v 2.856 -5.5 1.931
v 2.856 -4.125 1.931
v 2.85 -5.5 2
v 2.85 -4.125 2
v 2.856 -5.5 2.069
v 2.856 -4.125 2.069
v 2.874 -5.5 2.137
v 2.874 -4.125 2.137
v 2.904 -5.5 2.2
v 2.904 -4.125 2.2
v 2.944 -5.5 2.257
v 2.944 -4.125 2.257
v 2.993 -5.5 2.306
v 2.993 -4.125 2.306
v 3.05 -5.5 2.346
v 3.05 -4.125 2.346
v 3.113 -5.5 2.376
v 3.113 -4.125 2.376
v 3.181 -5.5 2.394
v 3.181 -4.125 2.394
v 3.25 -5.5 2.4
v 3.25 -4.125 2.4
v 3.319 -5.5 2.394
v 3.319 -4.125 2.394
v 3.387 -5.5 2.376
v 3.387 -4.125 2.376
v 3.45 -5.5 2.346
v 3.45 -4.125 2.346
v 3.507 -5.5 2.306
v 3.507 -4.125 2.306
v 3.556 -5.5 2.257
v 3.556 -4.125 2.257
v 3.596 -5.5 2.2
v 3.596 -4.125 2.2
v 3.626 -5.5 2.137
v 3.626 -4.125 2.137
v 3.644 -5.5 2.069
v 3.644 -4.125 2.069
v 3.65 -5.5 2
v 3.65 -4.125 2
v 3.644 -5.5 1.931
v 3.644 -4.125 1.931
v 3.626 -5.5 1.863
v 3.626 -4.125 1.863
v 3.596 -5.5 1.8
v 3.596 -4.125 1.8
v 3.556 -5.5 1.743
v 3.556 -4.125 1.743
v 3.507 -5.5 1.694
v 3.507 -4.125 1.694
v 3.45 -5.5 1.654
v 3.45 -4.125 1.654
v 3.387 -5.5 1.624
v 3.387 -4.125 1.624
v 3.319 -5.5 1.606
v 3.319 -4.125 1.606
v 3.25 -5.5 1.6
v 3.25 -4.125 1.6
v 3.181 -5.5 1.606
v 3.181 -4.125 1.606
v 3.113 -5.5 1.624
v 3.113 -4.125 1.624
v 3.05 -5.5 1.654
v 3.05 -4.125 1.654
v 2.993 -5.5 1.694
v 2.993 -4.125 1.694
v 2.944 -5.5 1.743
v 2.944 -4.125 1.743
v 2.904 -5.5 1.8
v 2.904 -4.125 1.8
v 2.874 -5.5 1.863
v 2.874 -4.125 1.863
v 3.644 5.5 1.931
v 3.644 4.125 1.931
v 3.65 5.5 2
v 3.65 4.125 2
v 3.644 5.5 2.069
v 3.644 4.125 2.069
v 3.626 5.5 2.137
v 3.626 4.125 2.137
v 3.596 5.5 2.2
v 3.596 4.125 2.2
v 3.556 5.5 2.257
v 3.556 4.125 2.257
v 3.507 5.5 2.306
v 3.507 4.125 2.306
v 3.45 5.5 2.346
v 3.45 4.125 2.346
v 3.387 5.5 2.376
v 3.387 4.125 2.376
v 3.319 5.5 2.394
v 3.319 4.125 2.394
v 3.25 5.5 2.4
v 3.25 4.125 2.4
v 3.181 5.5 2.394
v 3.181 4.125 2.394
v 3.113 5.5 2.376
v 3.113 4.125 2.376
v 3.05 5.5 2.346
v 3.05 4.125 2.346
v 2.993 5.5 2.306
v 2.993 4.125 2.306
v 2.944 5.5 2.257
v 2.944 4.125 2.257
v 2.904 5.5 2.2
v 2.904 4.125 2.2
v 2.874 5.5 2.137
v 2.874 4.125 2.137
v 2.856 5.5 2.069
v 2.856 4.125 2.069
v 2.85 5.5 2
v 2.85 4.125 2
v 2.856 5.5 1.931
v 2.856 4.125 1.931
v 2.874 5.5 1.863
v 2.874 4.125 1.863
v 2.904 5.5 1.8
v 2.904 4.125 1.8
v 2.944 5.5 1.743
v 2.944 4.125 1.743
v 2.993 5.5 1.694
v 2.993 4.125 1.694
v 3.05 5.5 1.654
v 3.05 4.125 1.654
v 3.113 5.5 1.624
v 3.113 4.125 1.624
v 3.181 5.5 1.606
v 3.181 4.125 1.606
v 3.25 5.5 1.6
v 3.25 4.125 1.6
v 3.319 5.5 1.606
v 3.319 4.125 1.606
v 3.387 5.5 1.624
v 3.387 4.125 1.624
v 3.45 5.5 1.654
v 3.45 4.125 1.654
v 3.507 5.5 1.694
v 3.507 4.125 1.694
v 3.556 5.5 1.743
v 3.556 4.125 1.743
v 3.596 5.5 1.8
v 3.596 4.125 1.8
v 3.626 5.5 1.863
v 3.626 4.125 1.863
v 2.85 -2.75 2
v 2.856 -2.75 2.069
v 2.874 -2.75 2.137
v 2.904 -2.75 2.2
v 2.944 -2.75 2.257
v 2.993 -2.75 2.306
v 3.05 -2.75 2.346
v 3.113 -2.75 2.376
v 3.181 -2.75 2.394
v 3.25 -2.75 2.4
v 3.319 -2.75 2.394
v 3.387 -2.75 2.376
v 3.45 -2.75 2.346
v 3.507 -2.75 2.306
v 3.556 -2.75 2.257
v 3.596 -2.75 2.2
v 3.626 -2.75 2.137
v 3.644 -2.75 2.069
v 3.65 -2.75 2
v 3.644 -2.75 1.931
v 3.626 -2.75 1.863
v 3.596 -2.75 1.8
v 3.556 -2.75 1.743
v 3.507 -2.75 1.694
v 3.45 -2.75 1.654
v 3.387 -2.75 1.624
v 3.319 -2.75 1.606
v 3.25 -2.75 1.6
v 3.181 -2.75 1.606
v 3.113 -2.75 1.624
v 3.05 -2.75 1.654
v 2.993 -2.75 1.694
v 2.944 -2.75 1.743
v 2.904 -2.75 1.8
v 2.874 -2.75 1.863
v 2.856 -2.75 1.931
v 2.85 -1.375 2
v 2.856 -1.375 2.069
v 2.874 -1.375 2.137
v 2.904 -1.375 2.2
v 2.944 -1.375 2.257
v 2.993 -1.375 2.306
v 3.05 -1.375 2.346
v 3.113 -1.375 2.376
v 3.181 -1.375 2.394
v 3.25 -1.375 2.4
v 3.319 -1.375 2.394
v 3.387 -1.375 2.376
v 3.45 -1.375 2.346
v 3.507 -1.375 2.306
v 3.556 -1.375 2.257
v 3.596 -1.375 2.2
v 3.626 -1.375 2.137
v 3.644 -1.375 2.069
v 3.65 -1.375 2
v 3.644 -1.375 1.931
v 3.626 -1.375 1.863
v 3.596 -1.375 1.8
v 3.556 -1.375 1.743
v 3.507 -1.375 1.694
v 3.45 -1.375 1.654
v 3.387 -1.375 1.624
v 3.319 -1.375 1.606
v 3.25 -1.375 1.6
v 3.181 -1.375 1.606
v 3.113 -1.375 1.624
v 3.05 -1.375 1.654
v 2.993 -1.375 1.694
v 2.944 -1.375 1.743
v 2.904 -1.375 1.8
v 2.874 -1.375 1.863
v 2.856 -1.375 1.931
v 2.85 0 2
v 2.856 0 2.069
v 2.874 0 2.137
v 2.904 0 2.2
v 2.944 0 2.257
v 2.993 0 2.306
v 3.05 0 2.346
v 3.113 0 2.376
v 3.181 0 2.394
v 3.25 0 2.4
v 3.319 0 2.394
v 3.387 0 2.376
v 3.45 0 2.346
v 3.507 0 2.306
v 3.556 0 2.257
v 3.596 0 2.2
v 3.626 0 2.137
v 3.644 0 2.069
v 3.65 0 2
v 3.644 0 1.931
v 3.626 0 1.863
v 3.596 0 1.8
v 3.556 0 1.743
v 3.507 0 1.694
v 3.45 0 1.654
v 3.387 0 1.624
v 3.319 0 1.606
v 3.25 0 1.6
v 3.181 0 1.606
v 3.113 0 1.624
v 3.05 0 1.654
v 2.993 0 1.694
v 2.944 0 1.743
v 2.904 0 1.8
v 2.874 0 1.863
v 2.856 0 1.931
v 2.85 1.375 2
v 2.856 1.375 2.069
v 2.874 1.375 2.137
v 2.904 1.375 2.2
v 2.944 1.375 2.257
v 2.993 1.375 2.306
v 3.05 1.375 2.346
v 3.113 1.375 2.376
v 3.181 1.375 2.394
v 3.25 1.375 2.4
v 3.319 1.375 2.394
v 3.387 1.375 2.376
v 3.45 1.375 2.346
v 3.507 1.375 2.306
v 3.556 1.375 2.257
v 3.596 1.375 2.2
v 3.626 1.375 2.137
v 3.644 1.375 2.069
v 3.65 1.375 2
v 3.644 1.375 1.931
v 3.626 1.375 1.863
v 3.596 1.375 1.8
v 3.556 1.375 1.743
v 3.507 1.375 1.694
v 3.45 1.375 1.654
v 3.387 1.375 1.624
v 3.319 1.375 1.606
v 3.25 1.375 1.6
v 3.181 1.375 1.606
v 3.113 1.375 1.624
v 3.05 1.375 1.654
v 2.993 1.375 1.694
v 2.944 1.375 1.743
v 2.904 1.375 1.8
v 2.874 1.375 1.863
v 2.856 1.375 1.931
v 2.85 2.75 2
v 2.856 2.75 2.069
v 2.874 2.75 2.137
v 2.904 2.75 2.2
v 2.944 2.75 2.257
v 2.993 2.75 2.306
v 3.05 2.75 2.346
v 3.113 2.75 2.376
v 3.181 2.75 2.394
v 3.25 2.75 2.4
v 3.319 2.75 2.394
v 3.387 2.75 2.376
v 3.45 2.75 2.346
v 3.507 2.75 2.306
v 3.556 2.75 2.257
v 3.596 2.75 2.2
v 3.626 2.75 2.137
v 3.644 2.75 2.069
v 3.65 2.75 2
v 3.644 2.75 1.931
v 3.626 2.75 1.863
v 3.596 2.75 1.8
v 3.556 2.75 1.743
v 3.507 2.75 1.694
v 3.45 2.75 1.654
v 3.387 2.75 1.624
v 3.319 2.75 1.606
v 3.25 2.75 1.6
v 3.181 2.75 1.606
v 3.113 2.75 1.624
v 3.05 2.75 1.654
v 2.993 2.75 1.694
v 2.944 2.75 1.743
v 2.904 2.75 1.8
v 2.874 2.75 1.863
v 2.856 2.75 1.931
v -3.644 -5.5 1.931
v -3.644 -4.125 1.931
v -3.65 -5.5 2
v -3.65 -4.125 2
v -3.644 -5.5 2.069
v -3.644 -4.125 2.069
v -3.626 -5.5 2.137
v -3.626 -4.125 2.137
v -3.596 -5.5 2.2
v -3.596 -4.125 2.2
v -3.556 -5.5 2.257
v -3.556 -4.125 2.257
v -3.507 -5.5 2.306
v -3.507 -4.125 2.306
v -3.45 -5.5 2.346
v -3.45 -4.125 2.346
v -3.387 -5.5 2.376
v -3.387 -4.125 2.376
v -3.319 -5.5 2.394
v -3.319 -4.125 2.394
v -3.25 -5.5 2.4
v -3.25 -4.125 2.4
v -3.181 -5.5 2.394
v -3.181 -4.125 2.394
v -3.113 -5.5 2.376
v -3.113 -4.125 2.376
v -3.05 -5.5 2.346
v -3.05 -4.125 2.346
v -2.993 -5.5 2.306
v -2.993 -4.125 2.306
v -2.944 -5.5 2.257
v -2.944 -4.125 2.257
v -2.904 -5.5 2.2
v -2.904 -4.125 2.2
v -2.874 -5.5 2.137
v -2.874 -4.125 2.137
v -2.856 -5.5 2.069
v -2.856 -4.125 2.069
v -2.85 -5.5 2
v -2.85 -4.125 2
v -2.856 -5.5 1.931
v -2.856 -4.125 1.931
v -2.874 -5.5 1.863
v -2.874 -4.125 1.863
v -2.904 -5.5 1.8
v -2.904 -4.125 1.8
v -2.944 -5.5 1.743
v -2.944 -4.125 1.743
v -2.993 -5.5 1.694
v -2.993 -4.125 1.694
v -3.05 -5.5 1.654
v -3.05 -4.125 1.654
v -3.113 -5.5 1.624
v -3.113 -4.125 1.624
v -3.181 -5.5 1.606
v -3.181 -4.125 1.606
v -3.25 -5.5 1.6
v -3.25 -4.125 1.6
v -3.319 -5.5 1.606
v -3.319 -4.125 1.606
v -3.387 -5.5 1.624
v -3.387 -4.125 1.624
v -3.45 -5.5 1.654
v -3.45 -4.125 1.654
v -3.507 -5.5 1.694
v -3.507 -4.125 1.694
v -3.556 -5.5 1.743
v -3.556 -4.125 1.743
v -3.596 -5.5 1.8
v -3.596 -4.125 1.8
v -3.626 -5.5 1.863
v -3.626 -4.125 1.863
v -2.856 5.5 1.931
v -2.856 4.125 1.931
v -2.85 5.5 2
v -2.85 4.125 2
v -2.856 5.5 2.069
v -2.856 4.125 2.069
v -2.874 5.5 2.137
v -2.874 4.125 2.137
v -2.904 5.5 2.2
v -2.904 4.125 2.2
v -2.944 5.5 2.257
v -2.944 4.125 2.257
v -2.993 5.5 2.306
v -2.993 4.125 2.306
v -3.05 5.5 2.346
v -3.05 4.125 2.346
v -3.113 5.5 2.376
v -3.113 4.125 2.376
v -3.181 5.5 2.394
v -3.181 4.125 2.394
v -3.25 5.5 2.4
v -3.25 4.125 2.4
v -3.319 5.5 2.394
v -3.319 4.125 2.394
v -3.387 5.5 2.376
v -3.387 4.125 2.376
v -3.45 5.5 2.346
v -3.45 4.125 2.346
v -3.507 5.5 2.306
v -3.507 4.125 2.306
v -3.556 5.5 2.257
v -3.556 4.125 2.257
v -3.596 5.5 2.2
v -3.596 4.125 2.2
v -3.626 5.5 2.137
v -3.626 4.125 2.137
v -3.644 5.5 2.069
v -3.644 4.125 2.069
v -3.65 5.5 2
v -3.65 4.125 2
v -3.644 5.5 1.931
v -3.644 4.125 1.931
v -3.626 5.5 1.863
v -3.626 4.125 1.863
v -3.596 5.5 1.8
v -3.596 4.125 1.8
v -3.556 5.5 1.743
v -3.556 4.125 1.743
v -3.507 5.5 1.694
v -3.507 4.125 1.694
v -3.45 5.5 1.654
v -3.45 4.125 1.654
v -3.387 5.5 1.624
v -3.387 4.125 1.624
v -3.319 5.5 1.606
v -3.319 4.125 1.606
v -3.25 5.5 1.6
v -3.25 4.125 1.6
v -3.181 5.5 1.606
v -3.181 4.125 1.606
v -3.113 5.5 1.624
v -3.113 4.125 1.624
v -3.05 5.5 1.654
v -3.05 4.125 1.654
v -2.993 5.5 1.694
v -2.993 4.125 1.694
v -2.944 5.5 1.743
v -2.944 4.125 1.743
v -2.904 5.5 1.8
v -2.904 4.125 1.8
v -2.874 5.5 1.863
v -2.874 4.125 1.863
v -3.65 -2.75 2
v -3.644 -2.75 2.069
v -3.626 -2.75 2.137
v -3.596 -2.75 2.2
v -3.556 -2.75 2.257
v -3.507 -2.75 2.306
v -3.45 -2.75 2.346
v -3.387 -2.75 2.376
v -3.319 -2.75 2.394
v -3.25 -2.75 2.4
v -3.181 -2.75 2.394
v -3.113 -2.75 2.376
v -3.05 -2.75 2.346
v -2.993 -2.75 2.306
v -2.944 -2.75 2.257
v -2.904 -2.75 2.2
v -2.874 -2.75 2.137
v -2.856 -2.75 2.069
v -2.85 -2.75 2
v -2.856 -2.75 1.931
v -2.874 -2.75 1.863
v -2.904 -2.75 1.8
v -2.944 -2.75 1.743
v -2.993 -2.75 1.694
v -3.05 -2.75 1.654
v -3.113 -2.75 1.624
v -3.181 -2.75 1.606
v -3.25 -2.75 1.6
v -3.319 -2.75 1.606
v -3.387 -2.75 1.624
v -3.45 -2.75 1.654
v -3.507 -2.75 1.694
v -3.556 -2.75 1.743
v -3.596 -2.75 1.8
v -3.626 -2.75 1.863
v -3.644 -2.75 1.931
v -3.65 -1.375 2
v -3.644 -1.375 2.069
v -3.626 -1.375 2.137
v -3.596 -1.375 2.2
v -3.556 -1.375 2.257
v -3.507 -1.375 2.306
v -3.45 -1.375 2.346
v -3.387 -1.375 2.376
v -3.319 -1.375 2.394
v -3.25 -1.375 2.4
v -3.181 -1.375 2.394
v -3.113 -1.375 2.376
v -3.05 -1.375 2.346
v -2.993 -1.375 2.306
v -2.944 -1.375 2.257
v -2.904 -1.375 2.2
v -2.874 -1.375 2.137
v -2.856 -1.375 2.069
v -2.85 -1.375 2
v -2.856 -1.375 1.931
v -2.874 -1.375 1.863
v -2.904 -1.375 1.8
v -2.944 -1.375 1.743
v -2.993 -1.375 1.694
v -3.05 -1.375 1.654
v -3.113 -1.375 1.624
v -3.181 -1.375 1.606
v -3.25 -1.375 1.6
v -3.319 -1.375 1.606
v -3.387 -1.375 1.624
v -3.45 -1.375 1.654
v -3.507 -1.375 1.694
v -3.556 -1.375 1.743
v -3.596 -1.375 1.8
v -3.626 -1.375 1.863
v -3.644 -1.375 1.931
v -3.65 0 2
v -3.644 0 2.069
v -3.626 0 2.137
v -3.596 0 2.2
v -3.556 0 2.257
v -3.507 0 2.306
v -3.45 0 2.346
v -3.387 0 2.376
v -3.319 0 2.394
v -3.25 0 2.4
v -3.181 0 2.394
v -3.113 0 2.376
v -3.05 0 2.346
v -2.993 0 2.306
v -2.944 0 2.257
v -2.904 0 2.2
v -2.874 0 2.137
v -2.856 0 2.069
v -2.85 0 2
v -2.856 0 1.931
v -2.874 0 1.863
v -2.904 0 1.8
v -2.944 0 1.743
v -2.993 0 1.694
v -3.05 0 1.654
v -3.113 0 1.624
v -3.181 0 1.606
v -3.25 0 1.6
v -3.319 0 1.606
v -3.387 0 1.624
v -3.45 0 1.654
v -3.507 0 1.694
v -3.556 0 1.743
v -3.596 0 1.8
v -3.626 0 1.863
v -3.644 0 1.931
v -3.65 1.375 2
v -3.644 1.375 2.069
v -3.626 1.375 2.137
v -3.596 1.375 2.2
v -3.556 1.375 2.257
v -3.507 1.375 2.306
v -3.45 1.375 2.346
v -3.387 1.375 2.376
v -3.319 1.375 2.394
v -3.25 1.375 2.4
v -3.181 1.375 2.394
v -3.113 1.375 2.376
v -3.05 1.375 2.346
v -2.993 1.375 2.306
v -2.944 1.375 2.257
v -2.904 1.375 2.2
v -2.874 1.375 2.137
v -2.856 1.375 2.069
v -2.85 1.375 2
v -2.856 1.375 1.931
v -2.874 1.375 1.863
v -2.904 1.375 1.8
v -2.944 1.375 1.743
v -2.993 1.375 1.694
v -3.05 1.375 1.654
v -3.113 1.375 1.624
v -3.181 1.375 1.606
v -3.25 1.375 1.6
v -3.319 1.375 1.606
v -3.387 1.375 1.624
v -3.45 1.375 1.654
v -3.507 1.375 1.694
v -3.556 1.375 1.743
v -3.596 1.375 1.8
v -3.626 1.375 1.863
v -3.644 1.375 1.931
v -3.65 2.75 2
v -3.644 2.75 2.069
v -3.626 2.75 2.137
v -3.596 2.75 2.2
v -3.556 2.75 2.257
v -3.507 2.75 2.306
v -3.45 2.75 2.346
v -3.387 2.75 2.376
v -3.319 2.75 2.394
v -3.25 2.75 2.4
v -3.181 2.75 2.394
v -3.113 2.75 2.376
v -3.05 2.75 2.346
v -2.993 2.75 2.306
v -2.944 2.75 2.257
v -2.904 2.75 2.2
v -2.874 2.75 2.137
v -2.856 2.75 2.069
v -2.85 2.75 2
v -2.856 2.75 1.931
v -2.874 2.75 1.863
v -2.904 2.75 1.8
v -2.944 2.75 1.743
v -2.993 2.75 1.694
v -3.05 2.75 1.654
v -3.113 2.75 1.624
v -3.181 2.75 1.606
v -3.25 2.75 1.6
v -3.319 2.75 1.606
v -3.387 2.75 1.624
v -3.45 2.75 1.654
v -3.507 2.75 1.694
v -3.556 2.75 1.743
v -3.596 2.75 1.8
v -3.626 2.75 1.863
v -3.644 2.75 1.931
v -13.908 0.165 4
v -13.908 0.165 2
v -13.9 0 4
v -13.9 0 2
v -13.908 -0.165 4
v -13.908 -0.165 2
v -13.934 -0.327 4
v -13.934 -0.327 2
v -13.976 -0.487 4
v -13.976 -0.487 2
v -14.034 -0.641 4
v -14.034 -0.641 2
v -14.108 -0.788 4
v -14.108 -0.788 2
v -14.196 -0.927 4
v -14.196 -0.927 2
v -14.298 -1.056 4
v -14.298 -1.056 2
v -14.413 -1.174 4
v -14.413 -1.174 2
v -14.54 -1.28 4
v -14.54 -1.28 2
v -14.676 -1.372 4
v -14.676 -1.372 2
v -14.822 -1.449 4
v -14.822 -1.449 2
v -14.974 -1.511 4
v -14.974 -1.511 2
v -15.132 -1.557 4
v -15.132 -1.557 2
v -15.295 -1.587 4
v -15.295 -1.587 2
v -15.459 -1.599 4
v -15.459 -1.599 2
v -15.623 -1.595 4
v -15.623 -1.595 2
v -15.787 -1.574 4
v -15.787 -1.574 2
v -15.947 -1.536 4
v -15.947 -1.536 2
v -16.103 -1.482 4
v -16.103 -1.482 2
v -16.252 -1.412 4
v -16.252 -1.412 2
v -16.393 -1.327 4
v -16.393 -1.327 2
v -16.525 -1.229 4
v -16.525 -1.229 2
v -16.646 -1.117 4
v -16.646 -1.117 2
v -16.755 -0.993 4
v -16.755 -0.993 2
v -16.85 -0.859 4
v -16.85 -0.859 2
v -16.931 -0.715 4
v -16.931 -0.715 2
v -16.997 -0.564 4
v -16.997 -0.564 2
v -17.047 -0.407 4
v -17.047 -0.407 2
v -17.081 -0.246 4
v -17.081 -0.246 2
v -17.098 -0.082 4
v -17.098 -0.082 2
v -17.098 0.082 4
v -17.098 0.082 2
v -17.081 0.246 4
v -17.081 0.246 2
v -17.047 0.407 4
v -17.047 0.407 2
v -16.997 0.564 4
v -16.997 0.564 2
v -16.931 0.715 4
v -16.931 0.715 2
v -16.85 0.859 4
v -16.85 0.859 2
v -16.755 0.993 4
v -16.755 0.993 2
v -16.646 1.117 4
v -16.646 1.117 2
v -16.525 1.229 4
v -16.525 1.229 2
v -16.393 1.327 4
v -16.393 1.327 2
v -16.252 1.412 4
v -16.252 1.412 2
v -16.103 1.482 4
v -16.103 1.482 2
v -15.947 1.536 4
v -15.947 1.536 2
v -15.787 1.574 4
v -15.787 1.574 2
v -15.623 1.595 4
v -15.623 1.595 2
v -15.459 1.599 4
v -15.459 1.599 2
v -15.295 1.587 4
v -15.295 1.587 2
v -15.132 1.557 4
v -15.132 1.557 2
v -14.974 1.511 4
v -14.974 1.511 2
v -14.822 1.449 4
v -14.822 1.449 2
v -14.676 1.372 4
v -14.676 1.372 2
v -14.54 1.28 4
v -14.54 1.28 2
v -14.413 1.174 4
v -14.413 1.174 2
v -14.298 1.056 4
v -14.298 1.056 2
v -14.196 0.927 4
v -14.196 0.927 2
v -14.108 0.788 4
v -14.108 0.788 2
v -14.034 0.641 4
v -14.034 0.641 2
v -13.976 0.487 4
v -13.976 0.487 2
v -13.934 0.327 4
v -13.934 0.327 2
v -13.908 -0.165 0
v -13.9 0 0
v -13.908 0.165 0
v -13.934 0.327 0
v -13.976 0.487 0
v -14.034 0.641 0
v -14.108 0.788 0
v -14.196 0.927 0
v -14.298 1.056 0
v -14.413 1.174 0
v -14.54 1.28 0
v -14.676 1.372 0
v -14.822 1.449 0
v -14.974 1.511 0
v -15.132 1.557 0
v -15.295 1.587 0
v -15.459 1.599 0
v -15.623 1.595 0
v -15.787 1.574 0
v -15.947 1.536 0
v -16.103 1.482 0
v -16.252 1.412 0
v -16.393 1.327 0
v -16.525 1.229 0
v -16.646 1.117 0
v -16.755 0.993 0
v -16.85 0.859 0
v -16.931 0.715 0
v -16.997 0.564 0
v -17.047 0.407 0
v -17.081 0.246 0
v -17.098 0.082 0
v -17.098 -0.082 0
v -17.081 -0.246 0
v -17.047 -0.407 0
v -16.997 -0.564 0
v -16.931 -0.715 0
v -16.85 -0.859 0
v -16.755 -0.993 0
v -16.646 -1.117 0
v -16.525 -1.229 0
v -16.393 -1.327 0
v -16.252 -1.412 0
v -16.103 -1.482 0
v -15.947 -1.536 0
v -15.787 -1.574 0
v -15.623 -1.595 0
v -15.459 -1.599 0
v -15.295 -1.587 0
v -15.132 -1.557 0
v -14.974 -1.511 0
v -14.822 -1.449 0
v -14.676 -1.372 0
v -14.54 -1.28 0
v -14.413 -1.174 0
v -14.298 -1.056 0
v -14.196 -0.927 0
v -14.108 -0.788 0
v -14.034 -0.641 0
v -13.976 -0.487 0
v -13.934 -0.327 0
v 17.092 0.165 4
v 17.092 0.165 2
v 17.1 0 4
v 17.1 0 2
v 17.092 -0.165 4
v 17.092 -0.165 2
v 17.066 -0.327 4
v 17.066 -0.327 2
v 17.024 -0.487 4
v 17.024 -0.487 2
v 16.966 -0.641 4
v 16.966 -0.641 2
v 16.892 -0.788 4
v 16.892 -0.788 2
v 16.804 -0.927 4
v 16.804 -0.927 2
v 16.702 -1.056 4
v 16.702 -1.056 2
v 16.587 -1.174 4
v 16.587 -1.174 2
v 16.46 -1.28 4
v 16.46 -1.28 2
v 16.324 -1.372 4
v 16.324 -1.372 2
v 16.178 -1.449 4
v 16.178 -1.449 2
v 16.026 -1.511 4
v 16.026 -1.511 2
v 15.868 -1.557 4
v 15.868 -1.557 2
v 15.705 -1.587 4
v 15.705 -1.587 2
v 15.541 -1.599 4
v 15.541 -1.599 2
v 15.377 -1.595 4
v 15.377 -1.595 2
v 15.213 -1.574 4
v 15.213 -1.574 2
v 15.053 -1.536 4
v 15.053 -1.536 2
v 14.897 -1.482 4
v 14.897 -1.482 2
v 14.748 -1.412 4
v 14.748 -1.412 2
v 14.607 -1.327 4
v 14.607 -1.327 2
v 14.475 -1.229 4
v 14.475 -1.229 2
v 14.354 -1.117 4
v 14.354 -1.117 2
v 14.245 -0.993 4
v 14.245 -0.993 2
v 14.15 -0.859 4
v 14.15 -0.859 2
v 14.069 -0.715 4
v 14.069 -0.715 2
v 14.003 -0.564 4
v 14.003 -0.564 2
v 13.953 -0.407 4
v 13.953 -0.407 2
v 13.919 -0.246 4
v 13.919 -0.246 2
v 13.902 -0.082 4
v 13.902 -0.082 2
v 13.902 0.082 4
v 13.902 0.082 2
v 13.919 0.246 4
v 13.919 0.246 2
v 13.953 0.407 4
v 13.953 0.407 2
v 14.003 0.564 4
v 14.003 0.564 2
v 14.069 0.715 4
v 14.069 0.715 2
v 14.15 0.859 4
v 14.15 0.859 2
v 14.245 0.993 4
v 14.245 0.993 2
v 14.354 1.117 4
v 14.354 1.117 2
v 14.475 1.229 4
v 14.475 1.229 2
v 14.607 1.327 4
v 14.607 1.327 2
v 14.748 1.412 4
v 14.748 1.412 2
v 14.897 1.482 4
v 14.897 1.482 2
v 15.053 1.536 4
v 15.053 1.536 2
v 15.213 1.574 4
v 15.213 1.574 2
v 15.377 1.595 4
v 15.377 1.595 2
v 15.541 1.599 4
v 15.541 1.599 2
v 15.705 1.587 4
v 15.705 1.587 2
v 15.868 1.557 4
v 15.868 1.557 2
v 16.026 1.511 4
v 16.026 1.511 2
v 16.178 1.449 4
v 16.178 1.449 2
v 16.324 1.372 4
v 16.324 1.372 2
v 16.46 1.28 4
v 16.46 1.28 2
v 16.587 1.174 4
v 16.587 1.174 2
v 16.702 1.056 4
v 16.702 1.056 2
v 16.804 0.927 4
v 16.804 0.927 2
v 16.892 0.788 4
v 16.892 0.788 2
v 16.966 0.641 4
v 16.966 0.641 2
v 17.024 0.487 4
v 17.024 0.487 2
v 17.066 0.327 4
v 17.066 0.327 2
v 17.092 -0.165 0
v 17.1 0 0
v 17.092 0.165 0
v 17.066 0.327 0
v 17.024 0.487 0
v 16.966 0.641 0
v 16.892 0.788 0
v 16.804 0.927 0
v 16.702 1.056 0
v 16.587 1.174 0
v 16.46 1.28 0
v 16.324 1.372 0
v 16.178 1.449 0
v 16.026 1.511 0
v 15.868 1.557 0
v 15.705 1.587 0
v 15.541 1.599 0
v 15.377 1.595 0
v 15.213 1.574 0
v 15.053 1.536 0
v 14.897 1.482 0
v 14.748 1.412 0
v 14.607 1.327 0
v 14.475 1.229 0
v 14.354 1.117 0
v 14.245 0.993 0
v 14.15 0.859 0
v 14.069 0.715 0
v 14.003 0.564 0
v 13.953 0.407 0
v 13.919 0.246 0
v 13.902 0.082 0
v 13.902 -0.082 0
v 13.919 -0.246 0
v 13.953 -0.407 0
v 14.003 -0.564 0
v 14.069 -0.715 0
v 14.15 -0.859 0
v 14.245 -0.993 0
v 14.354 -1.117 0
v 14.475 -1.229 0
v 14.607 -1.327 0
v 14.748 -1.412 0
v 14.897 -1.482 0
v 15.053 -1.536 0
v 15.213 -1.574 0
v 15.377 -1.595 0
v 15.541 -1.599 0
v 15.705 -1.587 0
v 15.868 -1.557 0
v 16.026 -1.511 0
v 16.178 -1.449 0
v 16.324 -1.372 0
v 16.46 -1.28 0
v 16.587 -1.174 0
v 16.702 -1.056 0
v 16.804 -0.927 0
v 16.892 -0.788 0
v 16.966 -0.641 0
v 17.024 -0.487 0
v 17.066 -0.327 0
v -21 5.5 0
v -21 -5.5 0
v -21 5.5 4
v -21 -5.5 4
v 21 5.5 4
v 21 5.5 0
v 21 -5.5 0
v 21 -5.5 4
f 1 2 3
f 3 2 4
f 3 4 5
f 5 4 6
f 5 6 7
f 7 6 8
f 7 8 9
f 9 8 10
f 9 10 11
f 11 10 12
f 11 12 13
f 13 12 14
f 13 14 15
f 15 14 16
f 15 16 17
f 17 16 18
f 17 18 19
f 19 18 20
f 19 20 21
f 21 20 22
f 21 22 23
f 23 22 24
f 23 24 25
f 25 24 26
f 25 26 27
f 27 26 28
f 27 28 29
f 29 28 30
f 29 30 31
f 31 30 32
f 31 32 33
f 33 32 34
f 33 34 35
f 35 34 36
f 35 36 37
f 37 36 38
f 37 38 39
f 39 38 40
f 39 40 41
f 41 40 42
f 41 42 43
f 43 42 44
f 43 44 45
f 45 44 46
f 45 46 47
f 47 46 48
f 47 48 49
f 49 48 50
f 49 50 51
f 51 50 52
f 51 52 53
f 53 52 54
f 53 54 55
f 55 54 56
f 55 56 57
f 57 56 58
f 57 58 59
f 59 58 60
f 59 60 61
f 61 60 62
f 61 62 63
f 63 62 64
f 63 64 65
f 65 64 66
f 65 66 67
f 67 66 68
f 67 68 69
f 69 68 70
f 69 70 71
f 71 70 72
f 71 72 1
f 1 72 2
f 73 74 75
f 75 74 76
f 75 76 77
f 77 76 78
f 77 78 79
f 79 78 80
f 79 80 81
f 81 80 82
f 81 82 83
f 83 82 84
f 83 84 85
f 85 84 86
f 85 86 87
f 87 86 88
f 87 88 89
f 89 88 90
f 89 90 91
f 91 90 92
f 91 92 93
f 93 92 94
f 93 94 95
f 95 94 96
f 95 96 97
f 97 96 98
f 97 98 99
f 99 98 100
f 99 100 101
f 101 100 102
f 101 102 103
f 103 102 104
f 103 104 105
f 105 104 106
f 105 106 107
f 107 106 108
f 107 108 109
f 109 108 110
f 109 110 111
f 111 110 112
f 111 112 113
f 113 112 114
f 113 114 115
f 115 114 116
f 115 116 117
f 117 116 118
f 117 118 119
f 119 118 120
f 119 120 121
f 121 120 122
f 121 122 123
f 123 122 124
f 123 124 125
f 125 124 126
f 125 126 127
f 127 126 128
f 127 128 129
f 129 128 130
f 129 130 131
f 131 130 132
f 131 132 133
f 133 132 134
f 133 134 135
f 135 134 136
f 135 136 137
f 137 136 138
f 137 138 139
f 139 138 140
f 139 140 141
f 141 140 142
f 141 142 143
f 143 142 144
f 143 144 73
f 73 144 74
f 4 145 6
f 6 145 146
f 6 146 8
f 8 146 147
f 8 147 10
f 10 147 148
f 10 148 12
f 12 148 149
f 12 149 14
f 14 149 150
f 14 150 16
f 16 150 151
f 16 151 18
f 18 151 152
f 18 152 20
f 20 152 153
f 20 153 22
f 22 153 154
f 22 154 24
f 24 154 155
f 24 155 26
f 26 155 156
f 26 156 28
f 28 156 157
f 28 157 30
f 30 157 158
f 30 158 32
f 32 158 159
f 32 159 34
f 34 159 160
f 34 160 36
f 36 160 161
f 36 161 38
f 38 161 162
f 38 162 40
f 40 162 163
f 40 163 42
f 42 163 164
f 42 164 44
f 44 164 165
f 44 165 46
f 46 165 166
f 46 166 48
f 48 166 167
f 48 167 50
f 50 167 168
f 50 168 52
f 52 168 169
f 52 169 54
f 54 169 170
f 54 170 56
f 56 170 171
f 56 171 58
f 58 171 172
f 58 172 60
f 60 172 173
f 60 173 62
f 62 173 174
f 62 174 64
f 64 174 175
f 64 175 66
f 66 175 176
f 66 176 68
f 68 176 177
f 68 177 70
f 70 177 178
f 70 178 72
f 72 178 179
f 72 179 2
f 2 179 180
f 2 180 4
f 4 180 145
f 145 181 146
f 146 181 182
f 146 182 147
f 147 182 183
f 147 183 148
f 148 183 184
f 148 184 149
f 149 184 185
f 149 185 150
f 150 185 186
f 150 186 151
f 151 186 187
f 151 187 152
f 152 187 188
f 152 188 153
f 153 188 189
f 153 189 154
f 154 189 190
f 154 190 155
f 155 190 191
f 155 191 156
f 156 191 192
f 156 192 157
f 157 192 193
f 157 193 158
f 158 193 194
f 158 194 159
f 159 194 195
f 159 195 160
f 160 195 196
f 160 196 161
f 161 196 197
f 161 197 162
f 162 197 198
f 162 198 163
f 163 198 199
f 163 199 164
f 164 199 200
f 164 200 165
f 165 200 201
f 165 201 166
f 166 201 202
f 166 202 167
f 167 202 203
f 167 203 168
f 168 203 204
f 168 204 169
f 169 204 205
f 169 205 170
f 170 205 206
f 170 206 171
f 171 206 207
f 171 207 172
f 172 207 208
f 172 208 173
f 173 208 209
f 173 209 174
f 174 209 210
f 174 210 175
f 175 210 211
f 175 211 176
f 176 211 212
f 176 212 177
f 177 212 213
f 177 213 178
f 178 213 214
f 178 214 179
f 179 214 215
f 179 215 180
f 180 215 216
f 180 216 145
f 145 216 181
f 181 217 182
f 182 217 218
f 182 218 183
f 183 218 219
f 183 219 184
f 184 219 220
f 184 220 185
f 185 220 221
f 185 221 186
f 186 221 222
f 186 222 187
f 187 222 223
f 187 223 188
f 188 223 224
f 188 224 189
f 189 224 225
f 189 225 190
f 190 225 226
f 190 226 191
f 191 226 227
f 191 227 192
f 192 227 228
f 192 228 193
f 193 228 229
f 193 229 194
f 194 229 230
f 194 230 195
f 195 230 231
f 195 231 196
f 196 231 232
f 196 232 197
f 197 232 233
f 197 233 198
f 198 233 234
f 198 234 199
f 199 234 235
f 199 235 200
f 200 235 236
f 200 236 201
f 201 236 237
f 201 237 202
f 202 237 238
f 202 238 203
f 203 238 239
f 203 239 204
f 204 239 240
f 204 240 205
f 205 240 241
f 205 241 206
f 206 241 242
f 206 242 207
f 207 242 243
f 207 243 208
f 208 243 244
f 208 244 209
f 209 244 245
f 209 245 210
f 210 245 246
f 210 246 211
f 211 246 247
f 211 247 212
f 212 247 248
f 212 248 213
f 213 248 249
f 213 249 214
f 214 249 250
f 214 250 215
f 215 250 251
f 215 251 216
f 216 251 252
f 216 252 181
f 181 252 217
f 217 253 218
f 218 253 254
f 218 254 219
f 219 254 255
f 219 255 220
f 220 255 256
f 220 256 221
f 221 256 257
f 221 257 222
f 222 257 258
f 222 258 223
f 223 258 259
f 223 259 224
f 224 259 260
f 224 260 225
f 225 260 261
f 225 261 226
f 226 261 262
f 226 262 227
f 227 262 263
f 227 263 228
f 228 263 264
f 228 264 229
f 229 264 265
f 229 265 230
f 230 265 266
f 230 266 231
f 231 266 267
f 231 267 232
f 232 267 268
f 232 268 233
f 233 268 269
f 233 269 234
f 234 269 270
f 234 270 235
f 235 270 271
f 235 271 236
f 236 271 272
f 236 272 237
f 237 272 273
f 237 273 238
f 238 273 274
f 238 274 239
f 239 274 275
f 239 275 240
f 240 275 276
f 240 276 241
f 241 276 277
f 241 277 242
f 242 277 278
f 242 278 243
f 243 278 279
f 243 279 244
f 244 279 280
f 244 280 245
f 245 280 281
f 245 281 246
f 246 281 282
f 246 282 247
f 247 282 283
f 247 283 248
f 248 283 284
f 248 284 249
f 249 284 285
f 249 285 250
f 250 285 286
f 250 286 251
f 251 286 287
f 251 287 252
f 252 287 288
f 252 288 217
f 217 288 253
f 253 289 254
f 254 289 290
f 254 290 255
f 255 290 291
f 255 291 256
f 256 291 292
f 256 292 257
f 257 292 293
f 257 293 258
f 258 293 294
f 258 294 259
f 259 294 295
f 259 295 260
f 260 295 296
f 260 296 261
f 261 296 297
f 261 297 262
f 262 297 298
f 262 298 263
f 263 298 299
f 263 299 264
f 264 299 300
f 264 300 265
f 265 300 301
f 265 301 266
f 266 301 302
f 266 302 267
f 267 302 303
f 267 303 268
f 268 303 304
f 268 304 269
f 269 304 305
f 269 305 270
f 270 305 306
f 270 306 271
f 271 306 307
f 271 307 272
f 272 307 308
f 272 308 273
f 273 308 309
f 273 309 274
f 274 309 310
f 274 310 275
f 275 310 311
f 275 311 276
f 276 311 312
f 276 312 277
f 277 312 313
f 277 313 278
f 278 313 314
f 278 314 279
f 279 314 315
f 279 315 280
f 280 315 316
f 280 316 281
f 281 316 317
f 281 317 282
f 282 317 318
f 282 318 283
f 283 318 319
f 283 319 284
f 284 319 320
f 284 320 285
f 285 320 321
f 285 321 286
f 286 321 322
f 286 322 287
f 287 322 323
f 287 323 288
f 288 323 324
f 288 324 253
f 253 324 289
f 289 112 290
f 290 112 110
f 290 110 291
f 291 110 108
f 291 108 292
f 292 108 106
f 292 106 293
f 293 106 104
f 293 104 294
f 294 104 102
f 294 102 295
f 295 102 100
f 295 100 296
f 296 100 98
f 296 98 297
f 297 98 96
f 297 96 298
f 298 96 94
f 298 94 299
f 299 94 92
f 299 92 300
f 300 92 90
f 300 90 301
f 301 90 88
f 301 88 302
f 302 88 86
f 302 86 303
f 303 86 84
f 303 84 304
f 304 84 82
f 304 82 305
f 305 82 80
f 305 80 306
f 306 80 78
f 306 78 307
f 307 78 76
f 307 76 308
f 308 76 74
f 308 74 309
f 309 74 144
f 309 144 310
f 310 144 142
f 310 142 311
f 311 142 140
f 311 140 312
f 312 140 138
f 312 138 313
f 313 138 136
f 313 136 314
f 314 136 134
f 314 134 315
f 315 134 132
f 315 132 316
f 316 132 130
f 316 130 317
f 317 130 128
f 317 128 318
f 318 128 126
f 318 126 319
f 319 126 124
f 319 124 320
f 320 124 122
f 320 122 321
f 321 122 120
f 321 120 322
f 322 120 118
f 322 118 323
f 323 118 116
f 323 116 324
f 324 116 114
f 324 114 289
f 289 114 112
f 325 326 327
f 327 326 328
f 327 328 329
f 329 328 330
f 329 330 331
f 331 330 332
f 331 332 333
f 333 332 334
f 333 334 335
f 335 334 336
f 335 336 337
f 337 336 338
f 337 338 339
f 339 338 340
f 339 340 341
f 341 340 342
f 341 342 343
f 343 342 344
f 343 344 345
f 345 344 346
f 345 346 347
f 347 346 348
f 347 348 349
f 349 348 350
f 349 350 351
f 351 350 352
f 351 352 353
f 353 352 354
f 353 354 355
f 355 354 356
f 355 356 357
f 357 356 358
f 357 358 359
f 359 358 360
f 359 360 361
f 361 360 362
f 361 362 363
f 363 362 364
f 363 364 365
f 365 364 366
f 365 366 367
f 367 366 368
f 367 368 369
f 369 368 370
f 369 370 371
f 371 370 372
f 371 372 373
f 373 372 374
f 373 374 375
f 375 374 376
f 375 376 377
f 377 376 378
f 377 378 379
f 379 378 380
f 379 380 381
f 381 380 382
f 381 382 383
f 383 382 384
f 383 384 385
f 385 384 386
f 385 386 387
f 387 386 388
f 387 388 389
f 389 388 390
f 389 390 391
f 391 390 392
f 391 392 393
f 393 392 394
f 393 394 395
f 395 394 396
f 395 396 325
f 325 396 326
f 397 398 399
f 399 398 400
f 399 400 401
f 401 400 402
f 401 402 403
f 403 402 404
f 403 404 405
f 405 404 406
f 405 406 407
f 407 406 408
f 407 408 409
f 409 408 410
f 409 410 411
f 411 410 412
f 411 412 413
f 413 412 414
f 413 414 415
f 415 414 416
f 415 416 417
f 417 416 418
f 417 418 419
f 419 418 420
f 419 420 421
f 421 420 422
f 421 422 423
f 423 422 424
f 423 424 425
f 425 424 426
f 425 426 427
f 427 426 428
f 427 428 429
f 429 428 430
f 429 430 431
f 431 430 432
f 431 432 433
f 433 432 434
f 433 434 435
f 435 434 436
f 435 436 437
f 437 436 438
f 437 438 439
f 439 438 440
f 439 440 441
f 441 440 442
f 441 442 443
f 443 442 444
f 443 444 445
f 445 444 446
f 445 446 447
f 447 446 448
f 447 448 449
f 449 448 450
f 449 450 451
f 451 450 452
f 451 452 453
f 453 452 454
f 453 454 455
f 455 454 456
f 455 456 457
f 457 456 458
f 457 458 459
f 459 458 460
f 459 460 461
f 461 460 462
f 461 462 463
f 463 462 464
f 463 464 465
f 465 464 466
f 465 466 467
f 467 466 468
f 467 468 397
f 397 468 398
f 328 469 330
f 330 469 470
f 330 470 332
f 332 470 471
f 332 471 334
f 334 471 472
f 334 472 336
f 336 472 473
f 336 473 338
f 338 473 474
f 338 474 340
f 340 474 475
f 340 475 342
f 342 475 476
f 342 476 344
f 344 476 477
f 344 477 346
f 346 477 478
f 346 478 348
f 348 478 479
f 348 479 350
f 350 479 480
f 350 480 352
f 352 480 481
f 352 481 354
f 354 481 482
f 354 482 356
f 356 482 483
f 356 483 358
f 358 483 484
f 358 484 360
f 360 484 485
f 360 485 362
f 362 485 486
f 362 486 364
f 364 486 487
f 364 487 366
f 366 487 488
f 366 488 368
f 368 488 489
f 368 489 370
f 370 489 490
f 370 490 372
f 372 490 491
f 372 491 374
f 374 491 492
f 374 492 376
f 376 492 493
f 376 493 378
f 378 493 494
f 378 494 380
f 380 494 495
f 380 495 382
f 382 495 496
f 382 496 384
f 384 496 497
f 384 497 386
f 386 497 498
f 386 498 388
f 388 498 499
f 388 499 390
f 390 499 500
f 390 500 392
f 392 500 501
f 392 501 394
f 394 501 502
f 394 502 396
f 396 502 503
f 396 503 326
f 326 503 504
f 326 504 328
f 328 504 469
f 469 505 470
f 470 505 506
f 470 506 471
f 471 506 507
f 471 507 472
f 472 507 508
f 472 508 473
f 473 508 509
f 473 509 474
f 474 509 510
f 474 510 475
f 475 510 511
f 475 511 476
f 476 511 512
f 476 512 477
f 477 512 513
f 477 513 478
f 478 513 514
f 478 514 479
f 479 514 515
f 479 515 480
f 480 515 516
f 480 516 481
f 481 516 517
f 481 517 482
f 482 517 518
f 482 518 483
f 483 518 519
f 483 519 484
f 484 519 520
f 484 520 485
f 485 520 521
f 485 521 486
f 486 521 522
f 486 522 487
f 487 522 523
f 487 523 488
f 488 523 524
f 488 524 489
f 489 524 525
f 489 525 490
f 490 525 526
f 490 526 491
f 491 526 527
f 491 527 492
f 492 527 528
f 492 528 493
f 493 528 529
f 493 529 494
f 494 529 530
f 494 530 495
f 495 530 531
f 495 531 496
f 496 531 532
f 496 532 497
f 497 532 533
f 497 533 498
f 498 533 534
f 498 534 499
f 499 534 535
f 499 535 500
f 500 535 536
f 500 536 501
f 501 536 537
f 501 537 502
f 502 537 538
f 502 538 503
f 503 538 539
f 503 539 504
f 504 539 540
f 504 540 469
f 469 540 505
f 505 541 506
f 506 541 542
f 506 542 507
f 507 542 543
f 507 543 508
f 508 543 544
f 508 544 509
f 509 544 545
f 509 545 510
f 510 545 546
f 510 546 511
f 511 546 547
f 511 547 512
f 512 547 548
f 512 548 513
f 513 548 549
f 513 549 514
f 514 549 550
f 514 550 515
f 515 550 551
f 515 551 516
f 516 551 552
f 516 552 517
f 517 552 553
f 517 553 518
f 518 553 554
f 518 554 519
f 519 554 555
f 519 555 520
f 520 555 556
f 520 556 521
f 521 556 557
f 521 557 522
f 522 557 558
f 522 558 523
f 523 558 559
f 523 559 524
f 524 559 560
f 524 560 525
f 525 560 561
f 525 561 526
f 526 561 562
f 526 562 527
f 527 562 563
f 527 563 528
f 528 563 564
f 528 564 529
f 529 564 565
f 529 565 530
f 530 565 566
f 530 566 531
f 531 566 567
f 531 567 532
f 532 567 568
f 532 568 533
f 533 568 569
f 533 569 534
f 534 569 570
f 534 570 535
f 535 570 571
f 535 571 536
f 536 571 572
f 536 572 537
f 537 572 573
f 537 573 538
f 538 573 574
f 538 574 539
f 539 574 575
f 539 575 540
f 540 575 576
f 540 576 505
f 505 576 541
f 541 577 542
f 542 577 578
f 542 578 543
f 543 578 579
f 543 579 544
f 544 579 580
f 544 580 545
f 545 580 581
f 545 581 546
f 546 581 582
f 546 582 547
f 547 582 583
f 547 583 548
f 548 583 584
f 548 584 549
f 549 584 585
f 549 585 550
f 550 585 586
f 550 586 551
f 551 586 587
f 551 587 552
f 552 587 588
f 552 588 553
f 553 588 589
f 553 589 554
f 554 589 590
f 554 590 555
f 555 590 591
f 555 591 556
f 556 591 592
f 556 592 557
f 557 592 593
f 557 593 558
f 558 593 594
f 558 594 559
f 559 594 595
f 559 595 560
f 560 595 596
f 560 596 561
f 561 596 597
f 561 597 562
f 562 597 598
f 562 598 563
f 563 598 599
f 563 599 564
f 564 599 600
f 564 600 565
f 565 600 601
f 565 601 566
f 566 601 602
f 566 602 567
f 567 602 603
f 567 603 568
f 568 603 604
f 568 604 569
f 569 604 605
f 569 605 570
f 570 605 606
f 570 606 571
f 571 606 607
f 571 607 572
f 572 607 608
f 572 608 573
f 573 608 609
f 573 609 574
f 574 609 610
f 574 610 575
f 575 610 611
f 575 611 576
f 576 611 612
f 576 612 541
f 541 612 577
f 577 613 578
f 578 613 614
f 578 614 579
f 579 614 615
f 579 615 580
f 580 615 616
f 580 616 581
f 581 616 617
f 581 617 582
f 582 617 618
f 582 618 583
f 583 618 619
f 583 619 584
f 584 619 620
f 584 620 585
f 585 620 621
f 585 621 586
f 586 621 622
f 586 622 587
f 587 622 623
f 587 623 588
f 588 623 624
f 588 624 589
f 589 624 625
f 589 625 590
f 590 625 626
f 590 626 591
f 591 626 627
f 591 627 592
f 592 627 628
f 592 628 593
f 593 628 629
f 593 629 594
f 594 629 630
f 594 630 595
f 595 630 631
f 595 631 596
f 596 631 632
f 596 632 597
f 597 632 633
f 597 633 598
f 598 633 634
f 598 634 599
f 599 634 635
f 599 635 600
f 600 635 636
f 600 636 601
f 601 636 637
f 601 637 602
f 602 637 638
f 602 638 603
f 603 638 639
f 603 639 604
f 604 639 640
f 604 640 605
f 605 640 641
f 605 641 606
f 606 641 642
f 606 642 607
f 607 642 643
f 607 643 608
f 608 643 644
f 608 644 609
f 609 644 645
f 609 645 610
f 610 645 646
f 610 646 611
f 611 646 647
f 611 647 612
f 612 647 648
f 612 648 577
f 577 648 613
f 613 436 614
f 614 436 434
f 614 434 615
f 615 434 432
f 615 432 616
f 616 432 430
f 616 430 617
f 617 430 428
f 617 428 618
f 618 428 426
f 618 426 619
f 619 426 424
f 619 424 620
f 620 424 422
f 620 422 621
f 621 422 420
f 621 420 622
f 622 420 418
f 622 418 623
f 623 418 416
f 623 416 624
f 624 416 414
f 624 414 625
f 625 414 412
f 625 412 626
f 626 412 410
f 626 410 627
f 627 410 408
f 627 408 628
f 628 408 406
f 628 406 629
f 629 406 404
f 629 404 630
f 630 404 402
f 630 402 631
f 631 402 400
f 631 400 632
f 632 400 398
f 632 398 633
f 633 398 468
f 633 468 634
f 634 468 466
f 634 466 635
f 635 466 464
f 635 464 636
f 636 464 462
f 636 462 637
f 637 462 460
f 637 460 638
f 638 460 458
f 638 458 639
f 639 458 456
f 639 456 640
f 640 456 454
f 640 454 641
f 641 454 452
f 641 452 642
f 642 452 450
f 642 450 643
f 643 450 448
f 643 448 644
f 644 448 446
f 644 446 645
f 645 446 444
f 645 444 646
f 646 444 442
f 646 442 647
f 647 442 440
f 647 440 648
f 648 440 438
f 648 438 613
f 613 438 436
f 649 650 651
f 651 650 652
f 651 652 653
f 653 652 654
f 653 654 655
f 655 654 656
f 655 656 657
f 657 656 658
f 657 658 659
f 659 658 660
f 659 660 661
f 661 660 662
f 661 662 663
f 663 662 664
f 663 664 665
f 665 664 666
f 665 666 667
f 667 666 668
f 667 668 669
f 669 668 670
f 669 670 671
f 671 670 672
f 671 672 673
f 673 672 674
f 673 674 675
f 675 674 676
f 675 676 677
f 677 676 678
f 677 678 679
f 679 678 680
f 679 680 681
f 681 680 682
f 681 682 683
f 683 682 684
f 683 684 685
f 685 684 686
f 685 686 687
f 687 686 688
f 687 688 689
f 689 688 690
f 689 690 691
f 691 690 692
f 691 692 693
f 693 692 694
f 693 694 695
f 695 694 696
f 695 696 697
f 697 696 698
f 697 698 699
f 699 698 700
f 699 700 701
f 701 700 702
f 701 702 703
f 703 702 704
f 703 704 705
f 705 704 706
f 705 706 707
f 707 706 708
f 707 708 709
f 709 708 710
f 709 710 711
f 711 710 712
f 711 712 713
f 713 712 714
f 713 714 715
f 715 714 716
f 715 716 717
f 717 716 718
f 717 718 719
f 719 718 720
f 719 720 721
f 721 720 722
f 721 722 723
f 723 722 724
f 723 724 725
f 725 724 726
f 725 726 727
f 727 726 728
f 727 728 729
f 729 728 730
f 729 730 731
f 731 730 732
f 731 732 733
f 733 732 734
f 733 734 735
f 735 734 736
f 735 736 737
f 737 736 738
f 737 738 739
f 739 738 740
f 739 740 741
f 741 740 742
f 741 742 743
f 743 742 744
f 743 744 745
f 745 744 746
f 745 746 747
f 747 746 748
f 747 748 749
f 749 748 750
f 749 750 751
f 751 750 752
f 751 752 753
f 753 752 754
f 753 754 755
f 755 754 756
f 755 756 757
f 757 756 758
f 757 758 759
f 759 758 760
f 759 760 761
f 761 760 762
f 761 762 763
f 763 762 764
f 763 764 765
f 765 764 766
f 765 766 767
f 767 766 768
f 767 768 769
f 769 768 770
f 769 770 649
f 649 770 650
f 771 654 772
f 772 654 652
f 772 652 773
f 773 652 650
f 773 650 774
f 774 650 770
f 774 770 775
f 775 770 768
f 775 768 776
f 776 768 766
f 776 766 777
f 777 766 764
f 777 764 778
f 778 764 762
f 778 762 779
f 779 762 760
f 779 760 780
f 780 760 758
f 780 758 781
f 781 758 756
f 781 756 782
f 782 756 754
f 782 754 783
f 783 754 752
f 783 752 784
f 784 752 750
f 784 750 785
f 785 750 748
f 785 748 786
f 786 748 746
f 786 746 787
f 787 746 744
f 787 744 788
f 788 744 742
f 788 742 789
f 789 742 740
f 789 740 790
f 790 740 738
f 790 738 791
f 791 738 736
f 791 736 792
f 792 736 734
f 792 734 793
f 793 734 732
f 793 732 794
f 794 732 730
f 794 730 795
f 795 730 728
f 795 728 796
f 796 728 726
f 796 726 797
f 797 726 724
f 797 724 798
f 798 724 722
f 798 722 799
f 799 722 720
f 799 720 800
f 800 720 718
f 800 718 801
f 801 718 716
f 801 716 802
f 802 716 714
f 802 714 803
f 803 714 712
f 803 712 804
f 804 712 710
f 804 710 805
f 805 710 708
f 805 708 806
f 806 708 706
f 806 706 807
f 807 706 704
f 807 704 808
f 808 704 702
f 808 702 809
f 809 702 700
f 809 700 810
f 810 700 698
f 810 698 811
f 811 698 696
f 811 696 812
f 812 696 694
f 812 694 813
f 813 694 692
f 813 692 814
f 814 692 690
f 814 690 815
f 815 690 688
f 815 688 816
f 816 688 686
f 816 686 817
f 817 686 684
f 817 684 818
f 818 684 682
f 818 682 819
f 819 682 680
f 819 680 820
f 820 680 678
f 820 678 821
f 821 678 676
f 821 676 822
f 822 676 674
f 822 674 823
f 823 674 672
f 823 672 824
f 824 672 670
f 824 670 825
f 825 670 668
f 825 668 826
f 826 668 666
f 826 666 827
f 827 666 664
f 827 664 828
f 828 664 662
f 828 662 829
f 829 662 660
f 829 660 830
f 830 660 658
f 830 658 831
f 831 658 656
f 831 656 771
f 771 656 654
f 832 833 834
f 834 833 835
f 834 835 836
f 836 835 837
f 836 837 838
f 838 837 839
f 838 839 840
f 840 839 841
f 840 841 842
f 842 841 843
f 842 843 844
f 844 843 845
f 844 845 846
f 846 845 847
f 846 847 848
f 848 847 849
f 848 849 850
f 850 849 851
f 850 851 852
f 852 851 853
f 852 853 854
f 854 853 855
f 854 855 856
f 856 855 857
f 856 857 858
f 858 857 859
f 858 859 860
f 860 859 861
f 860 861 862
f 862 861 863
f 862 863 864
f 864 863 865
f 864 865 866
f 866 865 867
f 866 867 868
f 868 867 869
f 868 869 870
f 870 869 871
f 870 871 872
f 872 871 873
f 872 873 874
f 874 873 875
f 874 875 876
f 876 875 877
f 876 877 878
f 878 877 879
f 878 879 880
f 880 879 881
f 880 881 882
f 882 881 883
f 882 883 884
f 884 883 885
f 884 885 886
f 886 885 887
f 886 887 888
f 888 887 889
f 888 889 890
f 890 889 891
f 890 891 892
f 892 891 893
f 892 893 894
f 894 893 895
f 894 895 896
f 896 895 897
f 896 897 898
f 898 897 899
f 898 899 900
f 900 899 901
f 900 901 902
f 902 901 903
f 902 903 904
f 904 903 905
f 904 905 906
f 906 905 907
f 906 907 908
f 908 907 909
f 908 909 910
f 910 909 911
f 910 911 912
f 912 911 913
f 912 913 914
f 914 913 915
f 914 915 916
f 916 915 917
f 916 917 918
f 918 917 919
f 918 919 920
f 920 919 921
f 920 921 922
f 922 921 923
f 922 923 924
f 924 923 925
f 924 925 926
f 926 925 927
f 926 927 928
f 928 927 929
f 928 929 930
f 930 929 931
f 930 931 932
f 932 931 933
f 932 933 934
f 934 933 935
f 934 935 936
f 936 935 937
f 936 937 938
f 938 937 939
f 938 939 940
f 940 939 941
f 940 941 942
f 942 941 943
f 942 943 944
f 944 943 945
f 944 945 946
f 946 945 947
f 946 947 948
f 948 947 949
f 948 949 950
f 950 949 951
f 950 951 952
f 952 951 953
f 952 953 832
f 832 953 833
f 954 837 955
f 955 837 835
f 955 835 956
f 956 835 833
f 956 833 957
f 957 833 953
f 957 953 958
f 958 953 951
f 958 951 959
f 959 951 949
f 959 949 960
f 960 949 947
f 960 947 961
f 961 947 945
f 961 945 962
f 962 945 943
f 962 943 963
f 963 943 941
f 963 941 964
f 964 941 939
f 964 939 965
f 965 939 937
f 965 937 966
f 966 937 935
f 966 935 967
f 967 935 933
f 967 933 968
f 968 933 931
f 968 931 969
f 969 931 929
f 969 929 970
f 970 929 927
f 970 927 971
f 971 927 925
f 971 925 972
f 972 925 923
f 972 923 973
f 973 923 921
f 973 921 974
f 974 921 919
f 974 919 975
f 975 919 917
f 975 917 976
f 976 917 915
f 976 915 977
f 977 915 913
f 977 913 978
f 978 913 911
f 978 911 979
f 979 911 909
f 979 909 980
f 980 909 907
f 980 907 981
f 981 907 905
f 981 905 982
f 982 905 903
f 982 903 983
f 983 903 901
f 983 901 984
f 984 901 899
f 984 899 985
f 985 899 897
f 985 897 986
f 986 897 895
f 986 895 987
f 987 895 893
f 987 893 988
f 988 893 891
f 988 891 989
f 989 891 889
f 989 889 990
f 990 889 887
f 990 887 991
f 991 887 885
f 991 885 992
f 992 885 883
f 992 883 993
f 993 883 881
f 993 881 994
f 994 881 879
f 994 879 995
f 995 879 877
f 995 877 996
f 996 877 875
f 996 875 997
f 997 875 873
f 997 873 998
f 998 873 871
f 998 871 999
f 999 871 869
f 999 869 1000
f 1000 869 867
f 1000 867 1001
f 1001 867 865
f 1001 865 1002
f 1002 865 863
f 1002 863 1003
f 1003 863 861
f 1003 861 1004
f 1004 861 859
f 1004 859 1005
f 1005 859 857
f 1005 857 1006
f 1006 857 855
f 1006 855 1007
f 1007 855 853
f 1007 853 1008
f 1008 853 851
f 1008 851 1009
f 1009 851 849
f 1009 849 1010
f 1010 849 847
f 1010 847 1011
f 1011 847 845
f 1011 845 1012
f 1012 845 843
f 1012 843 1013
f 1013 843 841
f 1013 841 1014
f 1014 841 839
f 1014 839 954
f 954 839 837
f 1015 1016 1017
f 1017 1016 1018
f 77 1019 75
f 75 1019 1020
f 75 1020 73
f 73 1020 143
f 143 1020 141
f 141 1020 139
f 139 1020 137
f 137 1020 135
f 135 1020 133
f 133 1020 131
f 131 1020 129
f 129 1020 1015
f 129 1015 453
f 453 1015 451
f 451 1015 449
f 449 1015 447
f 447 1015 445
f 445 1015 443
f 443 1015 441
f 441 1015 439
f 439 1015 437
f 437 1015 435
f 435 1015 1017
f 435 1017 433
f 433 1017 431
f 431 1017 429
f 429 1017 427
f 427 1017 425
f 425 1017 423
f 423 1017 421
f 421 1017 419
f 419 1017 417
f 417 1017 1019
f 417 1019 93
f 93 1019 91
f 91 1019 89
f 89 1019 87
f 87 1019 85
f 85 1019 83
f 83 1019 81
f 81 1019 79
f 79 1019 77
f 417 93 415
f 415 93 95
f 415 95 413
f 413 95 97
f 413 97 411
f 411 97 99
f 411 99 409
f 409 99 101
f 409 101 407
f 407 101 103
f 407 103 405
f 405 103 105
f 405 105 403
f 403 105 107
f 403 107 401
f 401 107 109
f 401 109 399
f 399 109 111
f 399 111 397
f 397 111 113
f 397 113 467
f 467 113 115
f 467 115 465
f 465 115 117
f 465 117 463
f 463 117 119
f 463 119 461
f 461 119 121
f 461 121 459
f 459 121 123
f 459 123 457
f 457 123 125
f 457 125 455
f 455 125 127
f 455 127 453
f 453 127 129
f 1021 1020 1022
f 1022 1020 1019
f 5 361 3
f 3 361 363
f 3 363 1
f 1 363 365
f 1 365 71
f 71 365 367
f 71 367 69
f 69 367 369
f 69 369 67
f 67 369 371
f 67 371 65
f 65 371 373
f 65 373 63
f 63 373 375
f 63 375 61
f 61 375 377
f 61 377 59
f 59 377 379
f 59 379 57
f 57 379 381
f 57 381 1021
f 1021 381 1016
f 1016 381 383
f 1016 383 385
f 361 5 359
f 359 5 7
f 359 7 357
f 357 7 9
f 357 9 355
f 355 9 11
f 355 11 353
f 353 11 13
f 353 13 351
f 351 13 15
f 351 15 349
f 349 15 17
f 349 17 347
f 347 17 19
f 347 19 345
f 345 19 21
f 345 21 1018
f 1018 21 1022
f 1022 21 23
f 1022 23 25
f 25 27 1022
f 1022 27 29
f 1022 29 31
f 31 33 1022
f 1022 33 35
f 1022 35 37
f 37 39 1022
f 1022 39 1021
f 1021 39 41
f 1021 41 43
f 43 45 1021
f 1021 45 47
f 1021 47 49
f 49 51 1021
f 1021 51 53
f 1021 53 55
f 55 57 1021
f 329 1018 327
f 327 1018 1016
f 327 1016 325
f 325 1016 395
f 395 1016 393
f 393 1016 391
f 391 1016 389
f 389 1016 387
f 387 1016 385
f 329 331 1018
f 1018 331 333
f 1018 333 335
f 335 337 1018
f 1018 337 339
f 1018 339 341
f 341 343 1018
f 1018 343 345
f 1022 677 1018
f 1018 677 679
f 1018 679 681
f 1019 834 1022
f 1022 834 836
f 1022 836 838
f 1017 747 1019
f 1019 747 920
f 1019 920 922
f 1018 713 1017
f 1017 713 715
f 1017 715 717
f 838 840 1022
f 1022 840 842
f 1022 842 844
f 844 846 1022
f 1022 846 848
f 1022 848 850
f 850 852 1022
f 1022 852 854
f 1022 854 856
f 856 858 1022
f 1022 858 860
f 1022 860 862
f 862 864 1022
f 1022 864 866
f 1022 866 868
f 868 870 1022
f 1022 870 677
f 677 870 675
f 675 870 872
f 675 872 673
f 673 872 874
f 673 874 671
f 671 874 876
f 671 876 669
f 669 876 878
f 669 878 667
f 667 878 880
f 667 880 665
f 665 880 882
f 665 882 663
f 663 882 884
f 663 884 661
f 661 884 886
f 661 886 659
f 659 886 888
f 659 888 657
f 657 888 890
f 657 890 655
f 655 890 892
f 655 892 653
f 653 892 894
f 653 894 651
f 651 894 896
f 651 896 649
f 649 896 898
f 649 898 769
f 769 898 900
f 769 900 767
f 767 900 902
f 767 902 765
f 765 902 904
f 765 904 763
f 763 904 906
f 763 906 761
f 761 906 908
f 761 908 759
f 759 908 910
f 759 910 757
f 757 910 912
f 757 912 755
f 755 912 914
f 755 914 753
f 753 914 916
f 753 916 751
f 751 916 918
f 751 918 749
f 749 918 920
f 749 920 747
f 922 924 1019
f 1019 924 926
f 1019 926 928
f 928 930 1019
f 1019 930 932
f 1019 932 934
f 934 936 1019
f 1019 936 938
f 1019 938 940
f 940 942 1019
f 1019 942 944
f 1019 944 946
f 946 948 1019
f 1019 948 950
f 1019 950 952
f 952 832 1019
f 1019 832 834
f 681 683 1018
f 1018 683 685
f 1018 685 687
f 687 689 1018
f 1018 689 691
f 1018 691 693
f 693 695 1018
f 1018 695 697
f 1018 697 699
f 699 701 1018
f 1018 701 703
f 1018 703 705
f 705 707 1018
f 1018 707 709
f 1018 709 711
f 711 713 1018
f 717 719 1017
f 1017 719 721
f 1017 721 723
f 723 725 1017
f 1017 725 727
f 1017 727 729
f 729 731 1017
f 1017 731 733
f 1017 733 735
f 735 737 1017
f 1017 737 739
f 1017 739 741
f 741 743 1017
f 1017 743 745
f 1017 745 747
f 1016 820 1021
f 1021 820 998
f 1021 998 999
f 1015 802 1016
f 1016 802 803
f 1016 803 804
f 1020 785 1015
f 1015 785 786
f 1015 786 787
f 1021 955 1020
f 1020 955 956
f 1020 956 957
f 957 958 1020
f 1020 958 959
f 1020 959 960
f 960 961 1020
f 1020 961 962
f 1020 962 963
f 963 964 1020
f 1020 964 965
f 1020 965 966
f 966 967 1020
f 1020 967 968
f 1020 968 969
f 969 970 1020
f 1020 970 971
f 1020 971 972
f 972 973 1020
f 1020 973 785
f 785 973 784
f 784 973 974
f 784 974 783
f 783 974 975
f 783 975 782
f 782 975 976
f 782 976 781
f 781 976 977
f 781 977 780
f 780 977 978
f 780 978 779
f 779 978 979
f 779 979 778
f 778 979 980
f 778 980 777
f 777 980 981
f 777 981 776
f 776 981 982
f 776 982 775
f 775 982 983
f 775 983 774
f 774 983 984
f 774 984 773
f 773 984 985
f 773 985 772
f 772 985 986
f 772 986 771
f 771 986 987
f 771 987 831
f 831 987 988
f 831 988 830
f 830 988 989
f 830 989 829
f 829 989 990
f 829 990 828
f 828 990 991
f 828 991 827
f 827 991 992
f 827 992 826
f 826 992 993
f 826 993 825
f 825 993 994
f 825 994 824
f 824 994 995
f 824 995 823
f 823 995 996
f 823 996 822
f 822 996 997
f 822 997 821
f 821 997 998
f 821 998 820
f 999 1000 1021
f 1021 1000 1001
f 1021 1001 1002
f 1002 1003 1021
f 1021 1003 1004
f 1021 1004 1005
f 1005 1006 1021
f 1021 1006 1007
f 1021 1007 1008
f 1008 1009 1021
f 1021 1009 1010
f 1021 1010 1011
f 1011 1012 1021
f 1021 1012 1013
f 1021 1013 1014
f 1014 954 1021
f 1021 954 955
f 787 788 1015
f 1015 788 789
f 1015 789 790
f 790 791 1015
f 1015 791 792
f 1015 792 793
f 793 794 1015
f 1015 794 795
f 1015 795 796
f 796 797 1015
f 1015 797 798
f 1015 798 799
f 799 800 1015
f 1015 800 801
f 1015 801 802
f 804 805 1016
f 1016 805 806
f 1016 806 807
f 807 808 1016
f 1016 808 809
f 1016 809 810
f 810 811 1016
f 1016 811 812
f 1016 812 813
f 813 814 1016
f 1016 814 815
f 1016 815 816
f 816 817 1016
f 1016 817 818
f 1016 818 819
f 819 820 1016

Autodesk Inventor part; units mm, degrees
ref_plane "YZ Plane" through (0, 0, 0) normal (1, 0, 0) x (0, 1, 0)
ref_plane "XZ Plane" through (0, 0, 0) normal (0, 1, 0) x (-1, 0, 0)
ref_plane "XY Plane" through (0, 0, 0) normal (0, 0, 1) x (1, 0, 0)
sketch "Sketch1" plane through (0, 0, 0) normal (0, 0, 1) x (1, 0, 0)
  line L0 (-21, 5.5) -> (21, 5.5)
  line L1 (21, 5.5) -> (21, -5.5)
  line L2 (21, -5.5) -> (-21, -5.5)
  line L3 (-21, -5.5) -> (-21, 5.5)
  circle A0 centre (-15.5, 0) radius 1.6
  circle A1 centre (15.5, 0) radius 1.6
  point P0 (0, 0)
  point P1 (0, 5.5)
  point P2 (-21, 0)
  dimension "d0" = 31
  dimension "d1" = 15.5
  dimension "d2" = 5.5
  dimension "d3" = 5.5
  dimension "d4" = 3.2
extrude "Extrusion1" add sketch "Sketch1" along normal blind 4
sketch "Sketch2" plane through (-21, 5.5, 0) normal (0, 1, 0) x (1, 0, 0)
  circle A0 centre (24.25, -2) radius 0.4
  circle A1 centre (17.75, -2) radius 0.4
  line L0 (0, 0) -> (0, -4) projected
  point P0 (21, 0)
  point P1 (0, -2)
  dimension "d7" = 6.5
  dimension "d8" = 3.25
  dimension "d9" = 0.8
extrude "Extrusion2" cut sketch "Sketch2" against normal through all
equation "\"d1\" = 0.5 * d0"
equation "\"d8\" = 0.5 * d7"
properties part number "Endschalterhalter"
